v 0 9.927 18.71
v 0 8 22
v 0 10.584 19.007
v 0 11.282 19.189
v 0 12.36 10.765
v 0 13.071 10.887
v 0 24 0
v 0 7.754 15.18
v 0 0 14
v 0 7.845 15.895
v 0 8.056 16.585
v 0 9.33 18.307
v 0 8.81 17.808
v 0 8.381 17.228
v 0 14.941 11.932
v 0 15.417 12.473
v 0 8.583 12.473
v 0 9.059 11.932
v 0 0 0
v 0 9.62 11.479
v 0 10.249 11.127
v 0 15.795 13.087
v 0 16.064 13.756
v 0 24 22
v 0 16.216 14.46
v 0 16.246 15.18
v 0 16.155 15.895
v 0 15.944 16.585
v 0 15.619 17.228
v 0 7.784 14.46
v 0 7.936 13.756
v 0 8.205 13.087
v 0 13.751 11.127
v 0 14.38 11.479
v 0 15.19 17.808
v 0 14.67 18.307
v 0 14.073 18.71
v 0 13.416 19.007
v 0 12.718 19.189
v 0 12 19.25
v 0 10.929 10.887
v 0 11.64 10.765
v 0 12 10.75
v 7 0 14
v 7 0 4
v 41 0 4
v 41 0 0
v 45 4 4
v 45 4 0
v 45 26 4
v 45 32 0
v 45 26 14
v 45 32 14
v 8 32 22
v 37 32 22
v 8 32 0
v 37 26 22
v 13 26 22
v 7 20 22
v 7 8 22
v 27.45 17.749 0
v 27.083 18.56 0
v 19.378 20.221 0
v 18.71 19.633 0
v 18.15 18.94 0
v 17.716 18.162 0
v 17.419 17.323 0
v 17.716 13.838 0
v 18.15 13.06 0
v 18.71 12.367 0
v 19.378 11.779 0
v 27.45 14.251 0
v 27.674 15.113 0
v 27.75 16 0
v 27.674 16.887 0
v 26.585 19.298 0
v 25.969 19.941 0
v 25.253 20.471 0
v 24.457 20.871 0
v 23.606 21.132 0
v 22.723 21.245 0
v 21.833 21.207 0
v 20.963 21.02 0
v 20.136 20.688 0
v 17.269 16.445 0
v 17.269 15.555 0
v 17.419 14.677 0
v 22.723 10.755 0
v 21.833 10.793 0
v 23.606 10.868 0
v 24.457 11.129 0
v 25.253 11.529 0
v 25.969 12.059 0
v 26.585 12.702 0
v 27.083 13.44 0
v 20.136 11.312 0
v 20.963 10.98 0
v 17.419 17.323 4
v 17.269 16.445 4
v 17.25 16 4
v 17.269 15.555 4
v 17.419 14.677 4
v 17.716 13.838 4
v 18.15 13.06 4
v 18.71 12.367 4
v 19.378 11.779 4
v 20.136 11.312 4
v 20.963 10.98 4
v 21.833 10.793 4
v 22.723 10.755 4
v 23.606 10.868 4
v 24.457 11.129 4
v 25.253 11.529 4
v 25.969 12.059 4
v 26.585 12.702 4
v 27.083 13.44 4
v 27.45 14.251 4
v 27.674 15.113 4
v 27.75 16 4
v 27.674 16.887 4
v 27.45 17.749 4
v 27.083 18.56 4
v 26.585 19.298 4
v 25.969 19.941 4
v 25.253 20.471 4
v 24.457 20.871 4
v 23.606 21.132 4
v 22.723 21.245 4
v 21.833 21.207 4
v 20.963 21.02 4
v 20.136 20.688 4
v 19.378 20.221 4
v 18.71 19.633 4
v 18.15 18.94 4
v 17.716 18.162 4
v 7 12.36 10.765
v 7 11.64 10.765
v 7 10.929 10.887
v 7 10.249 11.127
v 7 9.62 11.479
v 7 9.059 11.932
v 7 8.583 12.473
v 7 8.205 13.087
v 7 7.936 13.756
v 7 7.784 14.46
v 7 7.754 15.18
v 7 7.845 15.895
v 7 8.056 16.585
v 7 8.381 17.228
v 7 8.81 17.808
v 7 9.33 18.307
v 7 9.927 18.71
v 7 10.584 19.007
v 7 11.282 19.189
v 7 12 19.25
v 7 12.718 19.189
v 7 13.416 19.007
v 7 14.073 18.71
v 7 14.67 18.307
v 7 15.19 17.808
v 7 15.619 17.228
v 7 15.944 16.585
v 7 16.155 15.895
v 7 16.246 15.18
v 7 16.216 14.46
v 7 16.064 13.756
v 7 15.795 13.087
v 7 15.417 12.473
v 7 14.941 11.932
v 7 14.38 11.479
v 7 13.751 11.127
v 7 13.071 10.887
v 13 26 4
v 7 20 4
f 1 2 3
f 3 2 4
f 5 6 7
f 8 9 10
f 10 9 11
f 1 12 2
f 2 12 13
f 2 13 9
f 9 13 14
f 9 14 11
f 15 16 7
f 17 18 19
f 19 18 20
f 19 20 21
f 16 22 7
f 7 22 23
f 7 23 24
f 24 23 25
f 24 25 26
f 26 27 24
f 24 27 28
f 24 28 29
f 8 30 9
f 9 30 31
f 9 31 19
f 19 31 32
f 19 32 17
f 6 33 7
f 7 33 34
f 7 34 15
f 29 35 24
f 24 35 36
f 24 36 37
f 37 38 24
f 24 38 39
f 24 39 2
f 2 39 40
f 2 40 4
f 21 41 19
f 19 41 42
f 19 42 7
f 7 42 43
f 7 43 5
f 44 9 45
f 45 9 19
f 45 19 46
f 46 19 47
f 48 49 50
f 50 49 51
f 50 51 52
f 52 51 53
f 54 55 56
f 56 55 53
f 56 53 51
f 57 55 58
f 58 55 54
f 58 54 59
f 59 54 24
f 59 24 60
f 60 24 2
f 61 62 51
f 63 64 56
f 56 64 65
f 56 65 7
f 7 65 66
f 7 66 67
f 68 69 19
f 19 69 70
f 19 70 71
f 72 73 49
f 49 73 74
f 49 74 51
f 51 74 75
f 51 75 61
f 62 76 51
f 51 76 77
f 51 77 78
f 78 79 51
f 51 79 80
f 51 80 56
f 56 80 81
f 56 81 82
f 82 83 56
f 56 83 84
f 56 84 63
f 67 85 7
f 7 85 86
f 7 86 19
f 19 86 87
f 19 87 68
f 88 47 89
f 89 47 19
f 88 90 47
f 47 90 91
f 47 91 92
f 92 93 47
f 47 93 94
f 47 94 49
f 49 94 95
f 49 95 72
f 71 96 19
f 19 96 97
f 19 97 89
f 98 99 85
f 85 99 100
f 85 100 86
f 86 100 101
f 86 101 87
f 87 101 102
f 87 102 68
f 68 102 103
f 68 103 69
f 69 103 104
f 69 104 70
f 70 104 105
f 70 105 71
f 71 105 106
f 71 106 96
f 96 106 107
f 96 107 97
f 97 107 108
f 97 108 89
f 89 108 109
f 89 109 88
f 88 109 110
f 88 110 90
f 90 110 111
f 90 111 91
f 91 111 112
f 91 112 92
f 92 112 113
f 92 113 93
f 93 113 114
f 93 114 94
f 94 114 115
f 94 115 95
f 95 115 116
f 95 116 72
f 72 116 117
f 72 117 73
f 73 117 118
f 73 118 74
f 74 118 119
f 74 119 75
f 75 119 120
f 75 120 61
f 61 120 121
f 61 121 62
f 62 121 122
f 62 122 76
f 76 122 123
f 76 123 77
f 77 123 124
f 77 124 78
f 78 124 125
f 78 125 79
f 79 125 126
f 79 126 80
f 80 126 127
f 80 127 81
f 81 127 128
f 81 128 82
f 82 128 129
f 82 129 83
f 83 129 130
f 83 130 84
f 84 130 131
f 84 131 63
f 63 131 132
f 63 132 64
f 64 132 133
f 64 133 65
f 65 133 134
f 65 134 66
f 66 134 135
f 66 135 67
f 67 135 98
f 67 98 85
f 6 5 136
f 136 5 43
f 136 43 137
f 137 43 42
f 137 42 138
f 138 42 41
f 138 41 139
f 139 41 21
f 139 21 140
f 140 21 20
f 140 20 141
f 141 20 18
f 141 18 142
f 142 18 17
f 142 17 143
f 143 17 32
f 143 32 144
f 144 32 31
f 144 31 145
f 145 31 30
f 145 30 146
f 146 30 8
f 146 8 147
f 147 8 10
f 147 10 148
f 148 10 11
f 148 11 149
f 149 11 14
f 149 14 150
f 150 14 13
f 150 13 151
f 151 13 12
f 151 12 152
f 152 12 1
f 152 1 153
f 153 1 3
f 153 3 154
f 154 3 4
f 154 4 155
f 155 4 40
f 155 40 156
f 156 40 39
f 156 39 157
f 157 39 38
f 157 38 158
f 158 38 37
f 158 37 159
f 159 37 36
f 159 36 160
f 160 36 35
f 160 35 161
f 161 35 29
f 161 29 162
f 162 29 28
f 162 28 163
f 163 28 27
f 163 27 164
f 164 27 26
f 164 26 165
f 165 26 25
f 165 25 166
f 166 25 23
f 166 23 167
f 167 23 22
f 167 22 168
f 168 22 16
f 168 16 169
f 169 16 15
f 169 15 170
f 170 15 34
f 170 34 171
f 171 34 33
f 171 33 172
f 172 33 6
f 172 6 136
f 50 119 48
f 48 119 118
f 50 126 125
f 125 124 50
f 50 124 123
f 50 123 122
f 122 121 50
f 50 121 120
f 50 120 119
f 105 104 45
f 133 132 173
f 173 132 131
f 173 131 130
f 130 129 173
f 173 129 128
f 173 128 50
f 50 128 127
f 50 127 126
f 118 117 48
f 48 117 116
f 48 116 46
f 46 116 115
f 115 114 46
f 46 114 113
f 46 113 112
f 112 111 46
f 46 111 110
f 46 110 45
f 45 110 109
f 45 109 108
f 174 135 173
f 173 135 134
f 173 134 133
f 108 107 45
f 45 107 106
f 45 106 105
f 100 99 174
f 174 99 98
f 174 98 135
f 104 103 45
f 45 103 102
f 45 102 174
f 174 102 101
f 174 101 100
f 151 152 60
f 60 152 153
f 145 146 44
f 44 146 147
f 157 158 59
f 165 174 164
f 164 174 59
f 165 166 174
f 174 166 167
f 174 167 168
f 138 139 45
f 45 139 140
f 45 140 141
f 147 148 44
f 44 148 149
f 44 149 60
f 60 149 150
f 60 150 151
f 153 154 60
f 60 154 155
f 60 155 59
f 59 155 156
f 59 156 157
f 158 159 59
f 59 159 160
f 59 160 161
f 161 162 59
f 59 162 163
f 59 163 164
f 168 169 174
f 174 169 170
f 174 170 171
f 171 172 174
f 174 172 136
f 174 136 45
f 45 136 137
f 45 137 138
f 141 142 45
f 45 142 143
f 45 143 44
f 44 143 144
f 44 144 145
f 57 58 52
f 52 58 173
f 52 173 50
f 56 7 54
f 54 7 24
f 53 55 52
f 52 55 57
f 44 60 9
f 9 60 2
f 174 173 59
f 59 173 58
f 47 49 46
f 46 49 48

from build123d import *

# Parameters (mm, degrees)
ESQUISSE1_W                  = 45
ESQUISSE1_H                  = 32
BOSS_EXTRU_1_DEPTH           = 22
ESQUISSE2_R                  = 5.25
ENL_V_MAT_EXTRU_1_DEPTH      = 60.439044407
ENL_V_MAT_EXTRU_2_DEPTH      = 60.439044407
ENL_V_MAT_EXTRU_2_DEPTH_BACK = 60.439044407
ESQUISSE3_R                  = 4.25
ESQUISSE4_W                  = 18
ESQUISSE4_H                  = 26
ENL_V_MAT_EXTRU_3_DEPTH      = 38
CHANFREIN1_SIZE              = 8
BOSS_EXTRU_2_DEPTH           = 18
CHANFREIN2_SIZE              = 4


with BuildPart() as part:
    # Esquisse1 → Boss.-Extru.1 (new body)
    with BuildSketch(Plane.XY):
        with Locations((22.5, 16)):
            Rectangle(ESQUISSE1_W, ESQUISSE1_H)
    extrude(amount=BOSS_EXTRU_1_DEPTH)

    # Esquisse2 → Enlèv. mat.-Extru.1 (cut, through all)
    with BuildSketch(Plane.XY.offset(22)):
        with Locations((22.5, 16)):
            Circle(ESQUISSE2_R)
    extrude(amount=-ENL_V_MAT_EXTRU_1_DEPTH, mode=Mode.SUBTRACT)

    # Esquisse3 → Enlèv. mat.-Extru.2 (cut, two sides: drawn at the far end of the back side and taken through both)
    with BuildSketch(Plane.ZY.offset(-ENL_V_MAT_EXTRU_2_DEPTH_BACK)):
        with Locations((15, 12)):
            Circle(ESQUISSE3_R)
    extrude(amount=ENL_V_MAT_EXTRU_2_DEPTH + ENL_V_MAT_EXTRU_2_DEPTH_BACK, mode=Mode.SUBTRACT)

    # Esquisse4 → Enlèv. mat.-Extru.3 (cut)
    with BuildSketch(Plane(origin=(45, 0, 0), x_dir=(0, 0, -1), z_dir=(1, 0, 0))):
        with Locations((-13, 13)):
            Rectangle(ESQUISSE4_W, ESQUISSE4_H)
    extrude(amount=-ENL_V_MAT_EXTRU_3_DEPTH, mode=Mode.SUBTRACT)

    # Chanfrein1
    chanfrein1_edges = [part.edges().sort_by_distance(p)[0] for p in [
        (45, 29, 22),
        (3.5, 0, 22),
        (0, 32, 11),
    ]]
    chamfer(chanfrein1_edges, length=CHANFREIN1_SIZE)

    # Esquisse7 → Boss.-Extru.2 (add)
    with BuildSketch(Plane.XY.offset(22)):
        Polygon((7, 26), (13, 26), (7, 20), align=None)
    extrude(amount=-BOSS_EXTRU_2_DEPTH)

    # Chanfrein2
    chanfrein2_edges = [part.edges().sort_by_distance(p)[0] for p in [
        (45, 0, 2),
    ]]
    chamfer(chanfrein2_edges, length=CHANFREIN2_SIZE)


solid = part.part
